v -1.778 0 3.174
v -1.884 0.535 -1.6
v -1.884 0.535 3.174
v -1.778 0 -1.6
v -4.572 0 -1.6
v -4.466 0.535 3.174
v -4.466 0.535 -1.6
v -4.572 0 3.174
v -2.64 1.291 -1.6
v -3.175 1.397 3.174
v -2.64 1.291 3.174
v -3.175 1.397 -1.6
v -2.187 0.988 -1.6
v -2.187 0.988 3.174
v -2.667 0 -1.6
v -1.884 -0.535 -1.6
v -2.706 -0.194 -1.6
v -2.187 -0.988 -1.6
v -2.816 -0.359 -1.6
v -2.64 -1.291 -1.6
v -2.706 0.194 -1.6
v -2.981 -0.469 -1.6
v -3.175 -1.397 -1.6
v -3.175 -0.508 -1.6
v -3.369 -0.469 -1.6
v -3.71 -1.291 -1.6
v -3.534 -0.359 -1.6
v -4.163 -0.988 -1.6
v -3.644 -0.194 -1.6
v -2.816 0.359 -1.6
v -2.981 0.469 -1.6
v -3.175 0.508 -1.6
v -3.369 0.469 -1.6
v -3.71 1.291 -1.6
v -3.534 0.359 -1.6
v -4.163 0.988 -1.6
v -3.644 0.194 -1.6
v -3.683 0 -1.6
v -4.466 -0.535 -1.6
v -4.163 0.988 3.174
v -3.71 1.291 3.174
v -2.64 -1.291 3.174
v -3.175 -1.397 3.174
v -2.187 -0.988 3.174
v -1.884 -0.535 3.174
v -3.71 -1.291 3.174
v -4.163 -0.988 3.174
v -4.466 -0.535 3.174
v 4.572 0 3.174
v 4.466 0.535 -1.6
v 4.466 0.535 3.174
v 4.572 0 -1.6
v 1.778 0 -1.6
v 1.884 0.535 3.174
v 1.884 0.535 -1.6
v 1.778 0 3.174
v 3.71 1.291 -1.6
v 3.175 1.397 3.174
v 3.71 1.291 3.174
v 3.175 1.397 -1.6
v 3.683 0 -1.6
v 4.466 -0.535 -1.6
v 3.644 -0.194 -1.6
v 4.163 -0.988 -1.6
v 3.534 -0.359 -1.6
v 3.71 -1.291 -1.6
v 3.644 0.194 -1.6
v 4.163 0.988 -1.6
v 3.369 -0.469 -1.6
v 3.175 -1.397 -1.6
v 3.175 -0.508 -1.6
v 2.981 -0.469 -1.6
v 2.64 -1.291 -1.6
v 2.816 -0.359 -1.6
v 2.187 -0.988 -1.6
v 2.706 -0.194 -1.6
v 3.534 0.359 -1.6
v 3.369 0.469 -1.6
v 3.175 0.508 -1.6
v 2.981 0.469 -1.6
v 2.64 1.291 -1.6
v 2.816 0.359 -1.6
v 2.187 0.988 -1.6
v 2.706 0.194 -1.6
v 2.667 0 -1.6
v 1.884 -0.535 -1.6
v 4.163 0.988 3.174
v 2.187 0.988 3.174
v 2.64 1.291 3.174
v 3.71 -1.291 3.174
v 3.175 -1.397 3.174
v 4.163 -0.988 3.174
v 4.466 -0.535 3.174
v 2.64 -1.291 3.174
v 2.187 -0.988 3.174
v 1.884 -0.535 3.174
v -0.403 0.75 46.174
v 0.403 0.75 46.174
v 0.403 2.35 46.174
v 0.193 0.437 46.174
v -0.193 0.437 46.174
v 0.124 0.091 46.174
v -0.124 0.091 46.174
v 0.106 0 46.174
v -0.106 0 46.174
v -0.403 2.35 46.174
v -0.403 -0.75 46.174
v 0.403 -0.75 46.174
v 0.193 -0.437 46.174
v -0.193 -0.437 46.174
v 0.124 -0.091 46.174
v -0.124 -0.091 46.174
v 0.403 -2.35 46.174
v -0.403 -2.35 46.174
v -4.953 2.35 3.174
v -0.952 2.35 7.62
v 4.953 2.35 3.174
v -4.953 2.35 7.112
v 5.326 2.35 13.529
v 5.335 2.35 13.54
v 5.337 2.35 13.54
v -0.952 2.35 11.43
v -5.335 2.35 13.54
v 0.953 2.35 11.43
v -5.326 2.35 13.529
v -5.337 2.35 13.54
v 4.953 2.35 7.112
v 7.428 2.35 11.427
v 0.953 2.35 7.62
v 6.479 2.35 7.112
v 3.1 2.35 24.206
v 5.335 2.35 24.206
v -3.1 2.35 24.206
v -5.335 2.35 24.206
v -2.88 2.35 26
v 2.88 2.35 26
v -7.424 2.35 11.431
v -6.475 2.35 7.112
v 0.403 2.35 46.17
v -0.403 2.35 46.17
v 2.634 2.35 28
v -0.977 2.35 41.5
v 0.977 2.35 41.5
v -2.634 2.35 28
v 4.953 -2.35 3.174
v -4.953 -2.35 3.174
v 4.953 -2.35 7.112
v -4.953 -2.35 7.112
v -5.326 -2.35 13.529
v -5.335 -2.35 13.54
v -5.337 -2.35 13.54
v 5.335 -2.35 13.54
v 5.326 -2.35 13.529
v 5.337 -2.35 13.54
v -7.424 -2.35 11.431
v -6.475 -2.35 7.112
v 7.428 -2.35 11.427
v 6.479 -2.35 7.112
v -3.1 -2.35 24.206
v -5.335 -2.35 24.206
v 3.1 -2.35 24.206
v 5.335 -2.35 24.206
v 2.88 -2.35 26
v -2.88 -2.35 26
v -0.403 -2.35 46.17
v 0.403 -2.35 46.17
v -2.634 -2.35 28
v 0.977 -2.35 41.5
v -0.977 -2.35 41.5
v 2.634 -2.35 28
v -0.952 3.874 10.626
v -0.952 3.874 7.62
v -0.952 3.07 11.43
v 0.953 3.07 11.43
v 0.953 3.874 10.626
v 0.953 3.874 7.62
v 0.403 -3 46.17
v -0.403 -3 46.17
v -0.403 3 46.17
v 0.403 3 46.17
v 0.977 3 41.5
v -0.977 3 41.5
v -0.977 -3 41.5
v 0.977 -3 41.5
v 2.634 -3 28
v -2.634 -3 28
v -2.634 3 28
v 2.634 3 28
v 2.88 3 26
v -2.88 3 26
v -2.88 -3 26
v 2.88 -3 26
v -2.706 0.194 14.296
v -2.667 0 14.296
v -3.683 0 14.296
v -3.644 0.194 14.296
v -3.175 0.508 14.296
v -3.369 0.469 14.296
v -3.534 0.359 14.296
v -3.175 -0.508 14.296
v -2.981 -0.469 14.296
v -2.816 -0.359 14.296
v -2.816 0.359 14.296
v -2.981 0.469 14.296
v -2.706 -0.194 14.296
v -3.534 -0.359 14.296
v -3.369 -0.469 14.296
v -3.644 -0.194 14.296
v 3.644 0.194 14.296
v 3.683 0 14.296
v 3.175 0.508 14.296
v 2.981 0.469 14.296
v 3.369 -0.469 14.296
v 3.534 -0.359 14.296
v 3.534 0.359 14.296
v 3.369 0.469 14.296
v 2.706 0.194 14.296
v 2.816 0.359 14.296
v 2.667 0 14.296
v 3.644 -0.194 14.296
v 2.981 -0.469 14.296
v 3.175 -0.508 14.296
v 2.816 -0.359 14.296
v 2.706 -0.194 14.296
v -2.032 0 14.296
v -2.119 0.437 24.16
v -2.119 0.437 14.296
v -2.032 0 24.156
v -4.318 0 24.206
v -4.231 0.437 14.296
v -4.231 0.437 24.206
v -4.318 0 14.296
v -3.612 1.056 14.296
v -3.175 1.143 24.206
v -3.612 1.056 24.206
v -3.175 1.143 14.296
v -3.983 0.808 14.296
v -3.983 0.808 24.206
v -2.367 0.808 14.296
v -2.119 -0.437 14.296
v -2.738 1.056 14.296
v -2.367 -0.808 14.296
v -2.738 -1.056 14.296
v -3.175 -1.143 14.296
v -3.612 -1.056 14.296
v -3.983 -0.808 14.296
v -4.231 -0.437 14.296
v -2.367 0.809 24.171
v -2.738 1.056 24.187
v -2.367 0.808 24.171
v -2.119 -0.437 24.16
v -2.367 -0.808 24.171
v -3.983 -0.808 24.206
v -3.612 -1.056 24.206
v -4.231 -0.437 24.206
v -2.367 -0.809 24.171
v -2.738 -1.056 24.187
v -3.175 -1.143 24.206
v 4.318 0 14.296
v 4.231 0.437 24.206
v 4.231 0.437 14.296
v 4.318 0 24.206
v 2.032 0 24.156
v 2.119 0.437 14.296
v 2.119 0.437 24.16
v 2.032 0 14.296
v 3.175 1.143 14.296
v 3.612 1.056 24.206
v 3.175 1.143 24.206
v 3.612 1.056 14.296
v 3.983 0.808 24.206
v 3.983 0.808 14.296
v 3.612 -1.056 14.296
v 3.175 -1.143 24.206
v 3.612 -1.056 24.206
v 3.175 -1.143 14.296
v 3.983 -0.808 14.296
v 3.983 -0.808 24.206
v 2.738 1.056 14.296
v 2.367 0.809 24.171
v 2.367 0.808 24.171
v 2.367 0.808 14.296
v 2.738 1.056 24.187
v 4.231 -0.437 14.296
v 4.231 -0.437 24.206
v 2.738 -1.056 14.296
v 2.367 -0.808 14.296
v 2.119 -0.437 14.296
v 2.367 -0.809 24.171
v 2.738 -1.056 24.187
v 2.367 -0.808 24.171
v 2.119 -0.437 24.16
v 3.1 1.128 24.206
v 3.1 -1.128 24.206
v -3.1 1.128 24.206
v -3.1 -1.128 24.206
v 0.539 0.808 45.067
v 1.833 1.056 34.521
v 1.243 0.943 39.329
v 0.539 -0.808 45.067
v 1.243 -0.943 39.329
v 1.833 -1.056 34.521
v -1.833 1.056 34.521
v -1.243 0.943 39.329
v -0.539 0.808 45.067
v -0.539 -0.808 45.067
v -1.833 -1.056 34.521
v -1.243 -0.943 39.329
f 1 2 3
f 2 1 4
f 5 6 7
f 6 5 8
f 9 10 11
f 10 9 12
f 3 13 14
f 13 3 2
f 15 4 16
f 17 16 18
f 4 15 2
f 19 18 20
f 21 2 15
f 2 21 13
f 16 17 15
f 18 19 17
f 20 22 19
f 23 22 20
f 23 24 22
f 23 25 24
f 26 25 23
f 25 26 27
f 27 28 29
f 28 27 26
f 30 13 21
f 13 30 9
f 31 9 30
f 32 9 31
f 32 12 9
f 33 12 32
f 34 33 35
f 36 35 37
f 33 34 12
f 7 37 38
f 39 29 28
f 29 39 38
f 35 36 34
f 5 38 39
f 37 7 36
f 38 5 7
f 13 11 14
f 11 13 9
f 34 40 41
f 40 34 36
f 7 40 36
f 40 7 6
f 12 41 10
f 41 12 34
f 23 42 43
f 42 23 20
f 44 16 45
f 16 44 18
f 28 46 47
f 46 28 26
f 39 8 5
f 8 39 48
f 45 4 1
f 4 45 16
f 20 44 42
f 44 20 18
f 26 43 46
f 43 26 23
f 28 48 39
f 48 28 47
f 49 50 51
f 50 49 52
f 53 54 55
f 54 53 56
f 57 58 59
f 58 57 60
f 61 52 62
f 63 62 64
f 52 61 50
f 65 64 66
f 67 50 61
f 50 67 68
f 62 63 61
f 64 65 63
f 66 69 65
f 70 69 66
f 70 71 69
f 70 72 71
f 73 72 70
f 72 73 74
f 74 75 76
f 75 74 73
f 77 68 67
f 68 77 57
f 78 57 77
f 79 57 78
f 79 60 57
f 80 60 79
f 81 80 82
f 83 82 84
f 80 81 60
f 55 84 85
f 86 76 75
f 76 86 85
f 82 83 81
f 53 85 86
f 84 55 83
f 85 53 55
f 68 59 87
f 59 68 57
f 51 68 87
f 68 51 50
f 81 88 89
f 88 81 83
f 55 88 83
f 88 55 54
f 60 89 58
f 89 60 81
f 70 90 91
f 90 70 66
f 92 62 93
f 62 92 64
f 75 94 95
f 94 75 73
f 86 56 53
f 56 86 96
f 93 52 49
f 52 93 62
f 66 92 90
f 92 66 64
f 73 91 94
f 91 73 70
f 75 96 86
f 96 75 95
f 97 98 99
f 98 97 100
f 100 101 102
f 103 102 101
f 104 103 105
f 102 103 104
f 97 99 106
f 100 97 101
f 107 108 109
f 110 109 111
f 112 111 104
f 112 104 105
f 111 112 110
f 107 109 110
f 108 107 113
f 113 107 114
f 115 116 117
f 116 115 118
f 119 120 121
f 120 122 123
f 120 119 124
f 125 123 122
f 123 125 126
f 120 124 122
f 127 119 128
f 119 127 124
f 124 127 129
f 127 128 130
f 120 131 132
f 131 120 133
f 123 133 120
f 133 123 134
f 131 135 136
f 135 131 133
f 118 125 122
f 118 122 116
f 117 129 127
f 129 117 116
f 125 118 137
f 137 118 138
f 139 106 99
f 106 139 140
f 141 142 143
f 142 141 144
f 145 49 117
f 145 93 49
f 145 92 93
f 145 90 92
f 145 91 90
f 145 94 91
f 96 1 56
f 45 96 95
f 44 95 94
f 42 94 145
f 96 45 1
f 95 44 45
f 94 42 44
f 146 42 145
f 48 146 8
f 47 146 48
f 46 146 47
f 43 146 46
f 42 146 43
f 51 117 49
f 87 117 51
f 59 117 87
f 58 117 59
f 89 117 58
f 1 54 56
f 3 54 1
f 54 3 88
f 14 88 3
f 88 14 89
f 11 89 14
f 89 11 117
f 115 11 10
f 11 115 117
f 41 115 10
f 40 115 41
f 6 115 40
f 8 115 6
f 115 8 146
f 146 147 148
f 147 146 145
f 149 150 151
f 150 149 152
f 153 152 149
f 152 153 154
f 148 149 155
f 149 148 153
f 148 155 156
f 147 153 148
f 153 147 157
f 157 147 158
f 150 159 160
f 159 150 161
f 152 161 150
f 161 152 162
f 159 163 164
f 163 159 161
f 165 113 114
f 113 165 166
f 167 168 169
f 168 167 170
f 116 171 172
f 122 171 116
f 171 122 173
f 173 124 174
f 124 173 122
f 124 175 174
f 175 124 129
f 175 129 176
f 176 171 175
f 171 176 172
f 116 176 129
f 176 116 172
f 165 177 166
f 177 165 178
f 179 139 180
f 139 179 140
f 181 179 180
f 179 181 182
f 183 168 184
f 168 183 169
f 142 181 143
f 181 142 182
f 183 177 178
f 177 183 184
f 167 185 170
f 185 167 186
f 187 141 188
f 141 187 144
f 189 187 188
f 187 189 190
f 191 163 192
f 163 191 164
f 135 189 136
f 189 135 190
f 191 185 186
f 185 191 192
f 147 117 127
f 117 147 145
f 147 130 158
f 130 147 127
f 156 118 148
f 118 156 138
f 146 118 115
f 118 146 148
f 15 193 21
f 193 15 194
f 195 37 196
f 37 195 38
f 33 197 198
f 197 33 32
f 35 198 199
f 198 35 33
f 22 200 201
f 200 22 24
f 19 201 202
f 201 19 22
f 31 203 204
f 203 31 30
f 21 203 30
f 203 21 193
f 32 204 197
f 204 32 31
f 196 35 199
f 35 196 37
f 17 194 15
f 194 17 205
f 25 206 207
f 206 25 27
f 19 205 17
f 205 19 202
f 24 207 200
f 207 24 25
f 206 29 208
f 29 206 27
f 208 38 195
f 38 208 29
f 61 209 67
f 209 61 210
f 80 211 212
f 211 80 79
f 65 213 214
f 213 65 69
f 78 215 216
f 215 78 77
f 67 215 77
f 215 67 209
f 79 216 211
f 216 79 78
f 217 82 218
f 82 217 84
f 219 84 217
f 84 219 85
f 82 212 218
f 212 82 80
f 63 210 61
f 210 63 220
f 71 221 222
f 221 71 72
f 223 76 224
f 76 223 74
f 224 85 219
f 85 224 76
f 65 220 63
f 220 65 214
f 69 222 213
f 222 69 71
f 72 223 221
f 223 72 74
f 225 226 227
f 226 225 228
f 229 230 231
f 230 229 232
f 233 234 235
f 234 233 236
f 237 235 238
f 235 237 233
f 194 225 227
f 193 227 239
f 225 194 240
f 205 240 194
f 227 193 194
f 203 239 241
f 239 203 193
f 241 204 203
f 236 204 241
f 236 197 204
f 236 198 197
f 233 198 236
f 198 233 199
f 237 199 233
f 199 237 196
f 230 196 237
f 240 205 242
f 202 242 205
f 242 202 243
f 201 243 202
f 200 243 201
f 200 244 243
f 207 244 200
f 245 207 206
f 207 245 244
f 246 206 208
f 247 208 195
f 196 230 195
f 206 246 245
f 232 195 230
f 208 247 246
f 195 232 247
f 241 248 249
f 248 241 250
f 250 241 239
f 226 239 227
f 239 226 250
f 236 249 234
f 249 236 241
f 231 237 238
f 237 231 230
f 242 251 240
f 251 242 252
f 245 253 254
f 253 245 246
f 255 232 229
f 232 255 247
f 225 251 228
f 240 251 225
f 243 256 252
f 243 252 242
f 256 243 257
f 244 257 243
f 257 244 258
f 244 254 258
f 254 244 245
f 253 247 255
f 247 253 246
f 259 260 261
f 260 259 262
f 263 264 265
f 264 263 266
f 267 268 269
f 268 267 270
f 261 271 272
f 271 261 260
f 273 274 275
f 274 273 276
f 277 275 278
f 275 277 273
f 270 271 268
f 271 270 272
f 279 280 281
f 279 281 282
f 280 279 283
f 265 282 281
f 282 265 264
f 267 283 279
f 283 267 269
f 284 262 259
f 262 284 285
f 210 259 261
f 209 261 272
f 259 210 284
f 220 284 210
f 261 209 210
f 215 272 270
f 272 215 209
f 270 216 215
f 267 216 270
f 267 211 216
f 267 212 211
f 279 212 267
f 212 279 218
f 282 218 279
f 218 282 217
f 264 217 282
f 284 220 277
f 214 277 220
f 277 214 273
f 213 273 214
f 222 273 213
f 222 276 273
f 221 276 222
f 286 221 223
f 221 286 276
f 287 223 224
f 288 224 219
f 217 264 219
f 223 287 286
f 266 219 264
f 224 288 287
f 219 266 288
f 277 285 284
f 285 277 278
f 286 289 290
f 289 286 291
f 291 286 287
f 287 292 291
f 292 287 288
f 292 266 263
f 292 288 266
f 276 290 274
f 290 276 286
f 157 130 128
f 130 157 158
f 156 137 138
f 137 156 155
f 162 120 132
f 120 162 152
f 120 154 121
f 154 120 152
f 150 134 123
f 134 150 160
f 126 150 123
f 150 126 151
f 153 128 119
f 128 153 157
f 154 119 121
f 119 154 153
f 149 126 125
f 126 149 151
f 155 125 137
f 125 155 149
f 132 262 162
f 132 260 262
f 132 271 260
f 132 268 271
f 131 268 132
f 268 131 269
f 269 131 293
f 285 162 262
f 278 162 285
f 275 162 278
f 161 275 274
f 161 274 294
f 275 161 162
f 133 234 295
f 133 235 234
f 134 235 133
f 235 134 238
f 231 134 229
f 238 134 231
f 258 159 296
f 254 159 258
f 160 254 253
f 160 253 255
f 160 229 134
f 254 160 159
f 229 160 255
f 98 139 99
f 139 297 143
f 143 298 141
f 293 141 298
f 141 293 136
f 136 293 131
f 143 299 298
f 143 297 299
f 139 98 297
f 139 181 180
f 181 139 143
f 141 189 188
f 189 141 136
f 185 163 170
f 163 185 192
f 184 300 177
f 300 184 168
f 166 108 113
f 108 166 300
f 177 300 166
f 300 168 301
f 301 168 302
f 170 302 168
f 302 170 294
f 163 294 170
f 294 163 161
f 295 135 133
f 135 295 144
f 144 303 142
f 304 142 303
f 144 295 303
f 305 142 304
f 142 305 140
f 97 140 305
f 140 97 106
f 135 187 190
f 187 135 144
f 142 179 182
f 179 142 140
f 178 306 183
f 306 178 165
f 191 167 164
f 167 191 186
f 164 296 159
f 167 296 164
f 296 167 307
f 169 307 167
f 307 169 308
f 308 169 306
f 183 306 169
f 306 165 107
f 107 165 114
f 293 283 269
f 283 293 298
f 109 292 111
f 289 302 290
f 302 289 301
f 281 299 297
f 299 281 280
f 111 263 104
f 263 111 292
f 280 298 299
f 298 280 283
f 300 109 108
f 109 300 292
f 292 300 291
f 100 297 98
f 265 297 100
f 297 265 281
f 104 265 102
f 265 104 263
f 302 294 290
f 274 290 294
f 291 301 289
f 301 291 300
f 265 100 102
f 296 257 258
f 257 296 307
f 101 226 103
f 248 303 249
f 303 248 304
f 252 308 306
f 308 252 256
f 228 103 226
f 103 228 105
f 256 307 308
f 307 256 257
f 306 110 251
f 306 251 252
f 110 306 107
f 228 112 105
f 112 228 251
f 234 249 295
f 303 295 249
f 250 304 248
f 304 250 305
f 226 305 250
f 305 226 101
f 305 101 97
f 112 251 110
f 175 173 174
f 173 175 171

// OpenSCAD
// OpenSCAD 2019.05
// OPC-172 FO Housing for the uX766
// Joe Haas, KE0FF, 01/12/2021
// This is the fiber-optic housing for the ICOM UX-766 interface (also used by the IC900 and others).
//	This is a respin to re-create the STL file that was "lost".
//
// Ref shapes "ghosted" with "%'
//
//	REV-002: Extended "prongs" to compensate for "elephant's foot" during 3D print.  Prongs are post-
//				processed by saw or razor cut to establish finished length of 3.175 mm (0.125").
//  REV-001: initial design

// OPC-172 model follows:

difference(){
	union(){																					// main union (the "stuff" of the model)
		translate([-3.175,0,-1.6]) cylinder(h=4.775, r=1.397, center=false, $fn=16);			// "prongs"
		translate([3.175,0,-1.6]) cylinder(h=4.775, r=1.397, center=false, $fn=16);
		translate([-7.43,-2.35,3.174]) cube(size=[14.86,4.7,43]);								// main body
		translate([-.9525,2.35,7.62]) cube(size=[1.905,1.524,3.81]);							// polarizing tab
		translate([-1,-3,41.5]) cube(size=[2,6,4.67]);											// "T" stop
		translate([-6,-3,26]) cube(size=[12,6,2]);												// "B" stop
	}
	// Difference (subtraction) elements (the anti-"stuff" of the model)
	translate([4.953,-2.5,0]) cube(size=[5,5,7.112]);											// bottom notch
	translate([-9.953,-2.5,0]) cube(size=[5,5,7.112]);											// bottom notch
	translate([-3.175,0,-2]) cylinder(h=63, r=.508, center=false, $fn=16);						// fiber hole
	translate([3.175,0,-2]) cylinder(h=63, r=.508, center=false, $fn=16);						// fiber hole
	translate([-3.175,0,14.296]) cylinder(h=61, r=1.143, center=false, $fn=16);					// fiber jacket hole
	translate([3.175,0,14.296]) cylinder(h=61, r=1.143, center=false, $fn=16);					// fiber jacket hole
	translate([6.015,-2.5,5]) rotate([0,12.4,0]) cube(size=[5,5,7.112]);						// bottom bevel
	translate([-11.13,-2.5,5]) rotate([0,-12.4,0]) cube(size=[5,5,7.112]);						// bottom bevel
	translate([5.335,-2.5,13.54]) cube(size=[5,5,11]);											// top body
	translate([-10.335,-2.5,13.54]) cube(size=[5,5,11]);										// top body
	translate([10.355,-2.5,8.5]) rotate([0,-45,0]) cube(size=[5,5,7.112]);						// top bevel
	rotate([0,0,180]) translate([10.355,-2.5,8.5]) rotate([0,-45,0]) cube(size=[5,5,7.112]);	// top bevel
	translate([3.1,-2.5,24.206]) cube(size=[5,5,5]);											// top body2
	rotate([0,0,180]) translate([3.1,-2.5,24.206]) cube(size=[5,5,5]);							// top body2
	translate([3.1,-5,24.206]) rotate([0,-7,0]) cube(size=[10,10,28]);							// taper
	rotate([0,0,180]) translate([3.1,-5,24.206]) rotate([0,-7,0]) cube(size=[10,10,28]);		// taper
	translate([3.175,0,24.206]) rotate([0,-5,0]) cylinder(h=28, r=1.143, center=false, $fn=16);						// fiber jacket trough
	rotate([0,0,180]) translate([3.175,0,24.206]) rotate([0,-5,0]) cylinder(h=28, r=1.143, center=false, $fn=16);	// fiber jacket trough
	translate([-1.5,5,9.5]) rotate([45,0,0]) cube(size=[3,3,3]);								// polarizing tab cham
}
